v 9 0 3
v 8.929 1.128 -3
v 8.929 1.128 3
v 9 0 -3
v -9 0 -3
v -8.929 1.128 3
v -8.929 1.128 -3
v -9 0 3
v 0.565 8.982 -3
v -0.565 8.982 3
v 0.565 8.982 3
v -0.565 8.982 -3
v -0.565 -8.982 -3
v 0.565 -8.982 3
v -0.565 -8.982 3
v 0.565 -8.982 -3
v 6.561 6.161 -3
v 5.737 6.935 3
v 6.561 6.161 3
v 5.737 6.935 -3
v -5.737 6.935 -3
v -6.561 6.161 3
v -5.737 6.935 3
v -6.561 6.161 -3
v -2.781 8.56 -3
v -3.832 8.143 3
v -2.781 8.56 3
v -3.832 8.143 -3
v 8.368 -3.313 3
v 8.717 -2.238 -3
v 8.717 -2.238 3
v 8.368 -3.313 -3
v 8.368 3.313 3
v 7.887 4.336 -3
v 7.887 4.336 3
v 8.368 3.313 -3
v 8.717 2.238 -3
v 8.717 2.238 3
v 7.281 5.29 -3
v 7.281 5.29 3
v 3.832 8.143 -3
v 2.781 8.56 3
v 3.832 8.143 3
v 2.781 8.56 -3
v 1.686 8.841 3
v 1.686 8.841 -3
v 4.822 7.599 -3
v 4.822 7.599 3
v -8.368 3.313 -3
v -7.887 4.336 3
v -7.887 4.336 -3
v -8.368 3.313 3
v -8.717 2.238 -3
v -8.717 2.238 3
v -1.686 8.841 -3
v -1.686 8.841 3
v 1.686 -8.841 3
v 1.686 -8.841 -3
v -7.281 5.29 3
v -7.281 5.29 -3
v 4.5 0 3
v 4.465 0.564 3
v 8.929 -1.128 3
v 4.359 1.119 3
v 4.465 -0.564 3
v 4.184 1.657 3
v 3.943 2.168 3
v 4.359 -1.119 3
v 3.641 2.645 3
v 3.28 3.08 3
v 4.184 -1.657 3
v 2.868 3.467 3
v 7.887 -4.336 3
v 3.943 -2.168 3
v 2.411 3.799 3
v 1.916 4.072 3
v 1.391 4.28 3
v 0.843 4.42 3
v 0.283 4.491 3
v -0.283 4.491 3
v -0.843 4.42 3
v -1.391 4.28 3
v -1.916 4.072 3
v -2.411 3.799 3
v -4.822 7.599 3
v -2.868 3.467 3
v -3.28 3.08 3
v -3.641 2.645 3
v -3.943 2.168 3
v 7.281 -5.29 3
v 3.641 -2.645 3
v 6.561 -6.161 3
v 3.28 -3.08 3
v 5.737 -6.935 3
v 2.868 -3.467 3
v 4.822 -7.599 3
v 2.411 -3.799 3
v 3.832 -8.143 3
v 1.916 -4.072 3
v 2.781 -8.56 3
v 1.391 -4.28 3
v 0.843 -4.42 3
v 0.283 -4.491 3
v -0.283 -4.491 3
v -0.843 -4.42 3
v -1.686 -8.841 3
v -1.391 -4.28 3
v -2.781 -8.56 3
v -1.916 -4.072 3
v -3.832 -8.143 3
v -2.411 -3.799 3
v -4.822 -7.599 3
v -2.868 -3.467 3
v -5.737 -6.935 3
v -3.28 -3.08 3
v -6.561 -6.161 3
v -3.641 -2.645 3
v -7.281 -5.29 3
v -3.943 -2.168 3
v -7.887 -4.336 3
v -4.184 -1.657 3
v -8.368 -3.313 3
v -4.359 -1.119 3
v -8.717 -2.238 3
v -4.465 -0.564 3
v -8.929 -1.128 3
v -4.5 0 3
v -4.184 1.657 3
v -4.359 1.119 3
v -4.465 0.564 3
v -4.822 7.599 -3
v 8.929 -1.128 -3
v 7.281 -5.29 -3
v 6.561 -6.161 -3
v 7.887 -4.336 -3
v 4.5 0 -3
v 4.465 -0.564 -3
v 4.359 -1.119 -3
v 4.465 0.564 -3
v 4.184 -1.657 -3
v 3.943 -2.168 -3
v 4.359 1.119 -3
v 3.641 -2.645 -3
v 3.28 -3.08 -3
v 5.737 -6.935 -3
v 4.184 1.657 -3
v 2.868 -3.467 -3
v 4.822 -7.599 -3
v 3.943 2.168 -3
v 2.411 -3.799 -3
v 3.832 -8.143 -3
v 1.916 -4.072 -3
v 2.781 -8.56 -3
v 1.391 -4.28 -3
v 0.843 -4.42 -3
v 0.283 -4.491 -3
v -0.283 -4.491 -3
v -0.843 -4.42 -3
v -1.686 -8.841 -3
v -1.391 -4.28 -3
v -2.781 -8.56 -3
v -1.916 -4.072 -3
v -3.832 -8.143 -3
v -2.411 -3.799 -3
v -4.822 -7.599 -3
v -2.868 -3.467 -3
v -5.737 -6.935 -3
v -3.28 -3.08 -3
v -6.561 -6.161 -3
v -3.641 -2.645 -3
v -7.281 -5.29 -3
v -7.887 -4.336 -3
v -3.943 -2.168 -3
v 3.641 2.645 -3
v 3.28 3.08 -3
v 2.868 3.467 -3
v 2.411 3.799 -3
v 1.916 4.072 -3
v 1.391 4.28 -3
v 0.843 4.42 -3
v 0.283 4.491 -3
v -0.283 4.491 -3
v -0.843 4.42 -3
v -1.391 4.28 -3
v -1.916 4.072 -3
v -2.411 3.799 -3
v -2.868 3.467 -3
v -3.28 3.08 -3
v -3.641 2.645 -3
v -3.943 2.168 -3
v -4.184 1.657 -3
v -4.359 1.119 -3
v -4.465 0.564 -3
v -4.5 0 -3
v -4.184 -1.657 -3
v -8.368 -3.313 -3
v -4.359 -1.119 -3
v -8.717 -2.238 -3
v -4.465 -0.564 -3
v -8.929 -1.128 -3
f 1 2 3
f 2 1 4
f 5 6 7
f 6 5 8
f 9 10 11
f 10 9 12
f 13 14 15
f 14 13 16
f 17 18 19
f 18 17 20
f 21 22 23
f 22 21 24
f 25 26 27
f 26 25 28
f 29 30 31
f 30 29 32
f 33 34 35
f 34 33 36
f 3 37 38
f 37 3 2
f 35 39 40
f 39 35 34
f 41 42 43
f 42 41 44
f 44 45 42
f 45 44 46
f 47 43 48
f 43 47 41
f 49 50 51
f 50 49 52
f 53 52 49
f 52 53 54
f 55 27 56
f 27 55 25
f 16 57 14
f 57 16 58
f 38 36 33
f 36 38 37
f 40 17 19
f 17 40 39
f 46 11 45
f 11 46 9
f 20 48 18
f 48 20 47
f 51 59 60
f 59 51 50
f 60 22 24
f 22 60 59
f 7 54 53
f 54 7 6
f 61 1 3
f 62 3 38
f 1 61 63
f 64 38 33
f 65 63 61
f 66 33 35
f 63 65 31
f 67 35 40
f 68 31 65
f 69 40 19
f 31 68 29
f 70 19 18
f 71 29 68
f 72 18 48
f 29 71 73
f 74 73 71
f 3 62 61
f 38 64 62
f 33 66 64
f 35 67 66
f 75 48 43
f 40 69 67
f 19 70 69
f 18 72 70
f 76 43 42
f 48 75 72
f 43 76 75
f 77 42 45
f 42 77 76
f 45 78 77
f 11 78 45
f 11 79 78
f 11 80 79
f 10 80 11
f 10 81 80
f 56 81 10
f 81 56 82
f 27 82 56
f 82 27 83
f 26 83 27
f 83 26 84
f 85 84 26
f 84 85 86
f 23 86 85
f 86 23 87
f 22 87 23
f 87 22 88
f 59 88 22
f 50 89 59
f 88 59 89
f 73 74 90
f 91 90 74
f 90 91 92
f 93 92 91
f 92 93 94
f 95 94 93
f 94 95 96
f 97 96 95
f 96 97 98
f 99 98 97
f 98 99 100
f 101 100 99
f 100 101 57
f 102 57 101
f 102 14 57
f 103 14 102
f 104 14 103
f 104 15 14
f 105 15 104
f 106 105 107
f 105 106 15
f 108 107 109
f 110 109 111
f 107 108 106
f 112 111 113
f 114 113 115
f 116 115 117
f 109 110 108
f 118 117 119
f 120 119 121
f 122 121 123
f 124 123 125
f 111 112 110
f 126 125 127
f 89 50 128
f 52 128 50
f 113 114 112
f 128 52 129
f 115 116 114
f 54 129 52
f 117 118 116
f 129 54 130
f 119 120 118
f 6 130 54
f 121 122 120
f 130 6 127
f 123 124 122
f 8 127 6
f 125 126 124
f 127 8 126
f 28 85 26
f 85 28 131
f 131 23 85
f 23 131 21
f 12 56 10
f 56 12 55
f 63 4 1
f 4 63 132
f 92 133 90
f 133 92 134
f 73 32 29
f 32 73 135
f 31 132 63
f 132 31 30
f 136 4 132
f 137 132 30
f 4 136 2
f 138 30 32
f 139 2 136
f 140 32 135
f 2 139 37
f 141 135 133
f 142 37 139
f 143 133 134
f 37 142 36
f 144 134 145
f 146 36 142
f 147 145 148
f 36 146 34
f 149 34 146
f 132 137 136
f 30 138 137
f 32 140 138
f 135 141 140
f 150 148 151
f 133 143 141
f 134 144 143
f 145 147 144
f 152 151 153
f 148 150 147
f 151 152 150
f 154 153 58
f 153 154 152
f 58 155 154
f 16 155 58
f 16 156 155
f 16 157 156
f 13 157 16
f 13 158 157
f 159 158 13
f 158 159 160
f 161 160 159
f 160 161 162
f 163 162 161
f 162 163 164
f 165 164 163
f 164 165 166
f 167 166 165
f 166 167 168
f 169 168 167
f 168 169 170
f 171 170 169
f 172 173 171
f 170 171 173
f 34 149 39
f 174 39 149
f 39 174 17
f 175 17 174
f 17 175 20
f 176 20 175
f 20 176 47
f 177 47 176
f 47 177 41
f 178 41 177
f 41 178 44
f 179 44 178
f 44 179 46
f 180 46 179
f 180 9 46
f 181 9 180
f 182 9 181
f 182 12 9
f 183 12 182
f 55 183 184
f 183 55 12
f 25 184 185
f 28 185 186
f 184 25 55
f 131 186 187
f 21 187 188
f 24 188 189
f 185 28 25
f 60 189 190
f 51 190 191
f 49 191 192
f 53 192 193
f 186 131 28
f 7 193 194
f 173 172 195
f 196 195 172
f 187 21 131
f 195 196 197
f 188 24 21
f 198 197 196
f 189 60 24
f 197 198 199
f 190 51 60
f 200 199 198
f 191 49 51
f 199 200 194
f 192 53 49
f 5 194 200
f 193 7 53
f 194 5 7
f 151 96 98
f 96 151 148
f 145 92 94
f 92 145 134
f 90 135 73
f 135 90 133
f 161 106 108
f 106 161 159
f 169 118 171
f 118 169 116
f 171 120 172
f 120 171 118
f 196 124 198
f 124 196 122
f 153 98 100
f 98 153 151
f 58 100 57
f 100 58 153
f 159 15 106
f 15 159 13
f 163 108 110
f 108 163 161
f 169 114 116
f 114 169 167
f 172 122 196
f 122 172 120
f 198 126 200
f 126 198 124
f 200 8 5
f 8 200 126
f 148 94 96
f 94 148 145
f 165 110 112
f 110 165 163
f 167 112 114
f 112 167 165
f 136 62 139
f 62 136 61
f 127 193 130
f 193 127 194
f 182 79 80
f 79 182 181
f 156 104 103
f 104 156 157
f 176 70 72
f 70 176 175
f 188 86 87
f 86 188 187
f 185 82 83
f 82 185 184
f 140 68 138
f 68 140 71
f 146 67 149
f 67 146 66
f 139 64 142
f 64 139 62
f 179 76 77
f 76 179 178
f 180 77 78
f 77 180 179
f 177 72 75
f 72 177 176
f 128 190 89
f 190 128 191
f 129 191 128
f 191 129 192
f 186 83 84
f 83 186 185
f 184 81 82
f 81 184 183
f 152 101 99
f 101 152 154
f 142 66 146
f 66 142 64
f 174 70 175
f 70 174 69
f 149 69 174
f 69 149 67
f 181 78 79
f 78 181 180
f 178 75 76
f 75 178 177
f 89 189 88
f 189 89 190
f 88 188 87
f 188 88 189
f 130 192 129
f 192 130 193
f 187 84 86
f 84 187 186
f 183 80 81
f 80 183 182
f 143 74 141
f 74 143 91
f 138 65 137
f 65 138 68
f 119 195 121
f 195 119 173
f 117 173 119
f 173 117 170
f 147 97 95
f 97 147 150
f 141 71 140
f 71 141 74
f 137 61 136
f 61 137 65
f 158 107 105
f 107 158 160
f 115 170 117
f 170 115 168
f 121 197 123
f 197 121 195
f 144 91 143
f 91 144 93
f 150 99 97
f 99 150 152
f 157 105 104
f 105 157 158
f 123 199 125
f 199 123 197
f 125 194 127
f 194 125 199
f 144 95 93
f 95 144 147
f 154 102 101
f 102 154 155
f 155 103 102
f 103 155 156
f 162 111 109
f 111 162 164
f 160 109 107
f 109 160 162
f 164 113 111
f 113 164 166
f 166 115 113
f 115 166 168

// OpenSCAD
$fn = 50;


difference() {
	union() {
		translate(v = [0, 0, -3.0000000000]) {
			cylinder(h = 6, r = 9.0000000000);
		}
	}
	union() {
		translate(v = [0, 0, -100.0000000000]) {
			cylinder(h = 200, r = 4.5000000000);
		}
	}
}
